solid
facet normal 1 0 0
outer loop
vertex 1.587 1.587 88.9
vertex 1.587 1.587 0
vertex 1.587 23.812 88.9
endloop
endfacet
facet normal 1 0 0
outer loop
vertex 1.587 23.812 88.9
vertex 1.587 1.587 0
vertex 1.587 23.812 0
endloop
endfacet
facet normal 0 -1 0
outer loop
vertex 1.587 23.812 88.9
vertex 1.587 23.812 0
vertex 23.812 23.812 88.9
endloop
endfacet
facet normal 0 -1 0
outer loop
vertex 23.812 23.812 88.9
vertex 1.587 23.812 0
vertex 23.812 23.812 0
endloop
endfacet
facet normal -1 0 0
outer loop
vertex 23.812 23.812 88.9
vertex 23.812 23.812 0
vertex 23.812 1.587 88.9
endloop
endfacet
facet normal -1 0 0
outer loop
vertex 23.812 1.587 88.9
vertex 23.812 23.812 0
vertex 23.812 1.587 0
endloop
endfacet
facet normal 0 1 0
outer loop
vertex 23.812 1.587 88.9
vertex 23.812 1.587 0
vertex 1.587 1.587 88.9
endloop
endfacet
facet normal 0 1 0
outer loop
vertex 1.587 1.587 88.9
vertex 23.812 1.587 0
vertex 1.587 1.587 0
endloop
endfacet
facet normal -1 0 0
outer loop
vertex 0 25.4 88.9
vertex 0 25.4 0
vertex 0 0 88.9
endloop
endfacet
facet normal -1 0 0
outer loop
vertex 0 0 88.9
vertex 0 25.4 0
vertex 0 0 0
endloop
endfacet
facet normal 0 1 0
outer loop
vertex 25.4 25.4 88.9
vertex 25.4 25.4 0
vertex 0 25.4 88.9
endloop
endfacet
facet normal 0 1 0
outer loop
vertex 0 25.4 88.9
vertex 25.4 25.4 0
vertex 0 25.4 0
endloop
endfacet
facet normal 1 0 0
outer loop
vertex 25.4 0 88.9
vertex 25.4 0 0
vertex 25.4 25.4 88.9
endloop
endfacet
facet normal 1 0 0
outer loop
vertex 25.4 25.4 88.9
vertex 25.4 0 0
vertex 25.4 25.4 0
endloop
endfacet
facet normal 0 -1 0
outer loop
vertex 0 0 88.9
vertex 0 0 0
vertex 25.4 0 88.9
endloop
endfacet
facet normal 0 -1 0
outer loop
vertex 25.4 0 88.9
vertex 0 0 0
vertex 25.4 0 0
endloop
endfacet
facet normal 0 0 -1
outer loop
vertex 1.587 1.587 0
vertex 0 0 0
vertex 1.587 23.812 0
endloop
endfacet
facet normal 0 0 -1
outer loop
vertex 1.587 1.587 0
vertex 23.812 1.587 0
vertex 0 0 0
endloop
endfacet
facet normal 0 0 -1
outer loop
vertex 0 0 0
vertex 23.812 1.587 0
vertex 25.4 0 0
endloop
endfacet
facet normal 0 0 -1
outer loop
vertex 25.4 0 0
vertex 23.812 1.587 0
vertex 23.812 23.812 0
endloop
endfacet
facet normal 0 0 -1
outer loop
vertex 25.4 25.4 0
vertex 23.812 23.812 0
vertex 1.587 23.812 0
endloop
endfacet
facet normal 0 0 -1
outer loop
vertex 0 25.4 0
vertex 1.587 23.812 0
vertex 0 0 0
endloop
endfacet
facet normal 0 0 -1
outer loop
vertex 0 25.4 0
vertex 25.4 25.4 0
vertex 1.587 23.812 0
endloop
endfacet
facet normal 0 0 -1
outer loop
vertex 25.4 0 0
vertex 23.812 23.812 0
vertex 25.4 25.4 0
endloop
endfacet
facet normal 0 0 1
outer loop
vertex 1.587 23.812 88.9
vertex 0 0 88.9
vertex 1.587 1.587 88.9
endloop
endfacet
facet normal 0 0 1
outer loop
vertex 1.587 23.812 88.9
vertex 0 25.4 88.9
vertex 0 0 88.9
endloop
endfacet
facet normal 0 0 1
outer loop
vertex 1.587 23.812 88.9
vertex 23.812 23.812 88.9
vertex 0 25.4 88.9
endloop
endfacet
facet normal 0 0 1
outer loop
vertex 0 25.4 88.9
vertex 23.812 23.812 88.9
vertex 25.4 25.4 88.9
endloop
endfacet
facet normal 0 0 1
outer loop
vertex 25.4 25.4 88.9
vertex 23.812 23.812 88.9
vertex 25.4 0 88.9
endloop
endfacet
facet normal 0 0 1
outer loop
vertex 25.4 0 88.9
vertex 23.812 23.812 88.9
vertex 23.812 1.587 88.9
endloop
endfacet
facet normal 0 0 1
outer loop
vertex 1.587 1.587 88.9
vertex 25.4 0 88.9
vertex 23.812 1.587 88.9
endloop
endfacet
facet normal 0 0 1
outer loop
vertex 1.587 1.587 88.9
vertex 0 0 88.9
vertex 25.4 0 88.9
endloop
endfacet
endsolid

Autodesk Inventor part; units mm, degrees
ref_plane "YZ Plane" through (0, 0, 0) normal (1, 0, 0) x (0, 1, 0)
ref_plane "XZ Plane" through (0, 0, 0) normal (0, 1, 0) x (-1, 0, 0)
ref_plane "XY Plane" through (0, 0, 0) normal (0, 0, 1) x (1, 0, 0)
sketch "Sketch1" plane through (0, 0, 0) normal (0, 0, 1) x (1, 0, 0)
  line L0 (0, 0) -> (25.4, 0)
  line L1 (25.4, 0) -> (25.4, 25.4)
  line L2 (25.4, 25.4) -> (0, 25.4)
  line L3 (0, 25.4) -> (0, 0)
  dimension "d0" = 25.4
  dimension "d1" = 25.4
extrude "Extrusion1" add sketch "Sketch1" along normal blind 88.9
shell "Shell1" thickness 1.5875 removed faces 2 at (8.4667, 16.9333, 0) at (8.4667, 16.9333, 88.9)
properties part number "Frame_FrontConveyorGuideSideSupport"
